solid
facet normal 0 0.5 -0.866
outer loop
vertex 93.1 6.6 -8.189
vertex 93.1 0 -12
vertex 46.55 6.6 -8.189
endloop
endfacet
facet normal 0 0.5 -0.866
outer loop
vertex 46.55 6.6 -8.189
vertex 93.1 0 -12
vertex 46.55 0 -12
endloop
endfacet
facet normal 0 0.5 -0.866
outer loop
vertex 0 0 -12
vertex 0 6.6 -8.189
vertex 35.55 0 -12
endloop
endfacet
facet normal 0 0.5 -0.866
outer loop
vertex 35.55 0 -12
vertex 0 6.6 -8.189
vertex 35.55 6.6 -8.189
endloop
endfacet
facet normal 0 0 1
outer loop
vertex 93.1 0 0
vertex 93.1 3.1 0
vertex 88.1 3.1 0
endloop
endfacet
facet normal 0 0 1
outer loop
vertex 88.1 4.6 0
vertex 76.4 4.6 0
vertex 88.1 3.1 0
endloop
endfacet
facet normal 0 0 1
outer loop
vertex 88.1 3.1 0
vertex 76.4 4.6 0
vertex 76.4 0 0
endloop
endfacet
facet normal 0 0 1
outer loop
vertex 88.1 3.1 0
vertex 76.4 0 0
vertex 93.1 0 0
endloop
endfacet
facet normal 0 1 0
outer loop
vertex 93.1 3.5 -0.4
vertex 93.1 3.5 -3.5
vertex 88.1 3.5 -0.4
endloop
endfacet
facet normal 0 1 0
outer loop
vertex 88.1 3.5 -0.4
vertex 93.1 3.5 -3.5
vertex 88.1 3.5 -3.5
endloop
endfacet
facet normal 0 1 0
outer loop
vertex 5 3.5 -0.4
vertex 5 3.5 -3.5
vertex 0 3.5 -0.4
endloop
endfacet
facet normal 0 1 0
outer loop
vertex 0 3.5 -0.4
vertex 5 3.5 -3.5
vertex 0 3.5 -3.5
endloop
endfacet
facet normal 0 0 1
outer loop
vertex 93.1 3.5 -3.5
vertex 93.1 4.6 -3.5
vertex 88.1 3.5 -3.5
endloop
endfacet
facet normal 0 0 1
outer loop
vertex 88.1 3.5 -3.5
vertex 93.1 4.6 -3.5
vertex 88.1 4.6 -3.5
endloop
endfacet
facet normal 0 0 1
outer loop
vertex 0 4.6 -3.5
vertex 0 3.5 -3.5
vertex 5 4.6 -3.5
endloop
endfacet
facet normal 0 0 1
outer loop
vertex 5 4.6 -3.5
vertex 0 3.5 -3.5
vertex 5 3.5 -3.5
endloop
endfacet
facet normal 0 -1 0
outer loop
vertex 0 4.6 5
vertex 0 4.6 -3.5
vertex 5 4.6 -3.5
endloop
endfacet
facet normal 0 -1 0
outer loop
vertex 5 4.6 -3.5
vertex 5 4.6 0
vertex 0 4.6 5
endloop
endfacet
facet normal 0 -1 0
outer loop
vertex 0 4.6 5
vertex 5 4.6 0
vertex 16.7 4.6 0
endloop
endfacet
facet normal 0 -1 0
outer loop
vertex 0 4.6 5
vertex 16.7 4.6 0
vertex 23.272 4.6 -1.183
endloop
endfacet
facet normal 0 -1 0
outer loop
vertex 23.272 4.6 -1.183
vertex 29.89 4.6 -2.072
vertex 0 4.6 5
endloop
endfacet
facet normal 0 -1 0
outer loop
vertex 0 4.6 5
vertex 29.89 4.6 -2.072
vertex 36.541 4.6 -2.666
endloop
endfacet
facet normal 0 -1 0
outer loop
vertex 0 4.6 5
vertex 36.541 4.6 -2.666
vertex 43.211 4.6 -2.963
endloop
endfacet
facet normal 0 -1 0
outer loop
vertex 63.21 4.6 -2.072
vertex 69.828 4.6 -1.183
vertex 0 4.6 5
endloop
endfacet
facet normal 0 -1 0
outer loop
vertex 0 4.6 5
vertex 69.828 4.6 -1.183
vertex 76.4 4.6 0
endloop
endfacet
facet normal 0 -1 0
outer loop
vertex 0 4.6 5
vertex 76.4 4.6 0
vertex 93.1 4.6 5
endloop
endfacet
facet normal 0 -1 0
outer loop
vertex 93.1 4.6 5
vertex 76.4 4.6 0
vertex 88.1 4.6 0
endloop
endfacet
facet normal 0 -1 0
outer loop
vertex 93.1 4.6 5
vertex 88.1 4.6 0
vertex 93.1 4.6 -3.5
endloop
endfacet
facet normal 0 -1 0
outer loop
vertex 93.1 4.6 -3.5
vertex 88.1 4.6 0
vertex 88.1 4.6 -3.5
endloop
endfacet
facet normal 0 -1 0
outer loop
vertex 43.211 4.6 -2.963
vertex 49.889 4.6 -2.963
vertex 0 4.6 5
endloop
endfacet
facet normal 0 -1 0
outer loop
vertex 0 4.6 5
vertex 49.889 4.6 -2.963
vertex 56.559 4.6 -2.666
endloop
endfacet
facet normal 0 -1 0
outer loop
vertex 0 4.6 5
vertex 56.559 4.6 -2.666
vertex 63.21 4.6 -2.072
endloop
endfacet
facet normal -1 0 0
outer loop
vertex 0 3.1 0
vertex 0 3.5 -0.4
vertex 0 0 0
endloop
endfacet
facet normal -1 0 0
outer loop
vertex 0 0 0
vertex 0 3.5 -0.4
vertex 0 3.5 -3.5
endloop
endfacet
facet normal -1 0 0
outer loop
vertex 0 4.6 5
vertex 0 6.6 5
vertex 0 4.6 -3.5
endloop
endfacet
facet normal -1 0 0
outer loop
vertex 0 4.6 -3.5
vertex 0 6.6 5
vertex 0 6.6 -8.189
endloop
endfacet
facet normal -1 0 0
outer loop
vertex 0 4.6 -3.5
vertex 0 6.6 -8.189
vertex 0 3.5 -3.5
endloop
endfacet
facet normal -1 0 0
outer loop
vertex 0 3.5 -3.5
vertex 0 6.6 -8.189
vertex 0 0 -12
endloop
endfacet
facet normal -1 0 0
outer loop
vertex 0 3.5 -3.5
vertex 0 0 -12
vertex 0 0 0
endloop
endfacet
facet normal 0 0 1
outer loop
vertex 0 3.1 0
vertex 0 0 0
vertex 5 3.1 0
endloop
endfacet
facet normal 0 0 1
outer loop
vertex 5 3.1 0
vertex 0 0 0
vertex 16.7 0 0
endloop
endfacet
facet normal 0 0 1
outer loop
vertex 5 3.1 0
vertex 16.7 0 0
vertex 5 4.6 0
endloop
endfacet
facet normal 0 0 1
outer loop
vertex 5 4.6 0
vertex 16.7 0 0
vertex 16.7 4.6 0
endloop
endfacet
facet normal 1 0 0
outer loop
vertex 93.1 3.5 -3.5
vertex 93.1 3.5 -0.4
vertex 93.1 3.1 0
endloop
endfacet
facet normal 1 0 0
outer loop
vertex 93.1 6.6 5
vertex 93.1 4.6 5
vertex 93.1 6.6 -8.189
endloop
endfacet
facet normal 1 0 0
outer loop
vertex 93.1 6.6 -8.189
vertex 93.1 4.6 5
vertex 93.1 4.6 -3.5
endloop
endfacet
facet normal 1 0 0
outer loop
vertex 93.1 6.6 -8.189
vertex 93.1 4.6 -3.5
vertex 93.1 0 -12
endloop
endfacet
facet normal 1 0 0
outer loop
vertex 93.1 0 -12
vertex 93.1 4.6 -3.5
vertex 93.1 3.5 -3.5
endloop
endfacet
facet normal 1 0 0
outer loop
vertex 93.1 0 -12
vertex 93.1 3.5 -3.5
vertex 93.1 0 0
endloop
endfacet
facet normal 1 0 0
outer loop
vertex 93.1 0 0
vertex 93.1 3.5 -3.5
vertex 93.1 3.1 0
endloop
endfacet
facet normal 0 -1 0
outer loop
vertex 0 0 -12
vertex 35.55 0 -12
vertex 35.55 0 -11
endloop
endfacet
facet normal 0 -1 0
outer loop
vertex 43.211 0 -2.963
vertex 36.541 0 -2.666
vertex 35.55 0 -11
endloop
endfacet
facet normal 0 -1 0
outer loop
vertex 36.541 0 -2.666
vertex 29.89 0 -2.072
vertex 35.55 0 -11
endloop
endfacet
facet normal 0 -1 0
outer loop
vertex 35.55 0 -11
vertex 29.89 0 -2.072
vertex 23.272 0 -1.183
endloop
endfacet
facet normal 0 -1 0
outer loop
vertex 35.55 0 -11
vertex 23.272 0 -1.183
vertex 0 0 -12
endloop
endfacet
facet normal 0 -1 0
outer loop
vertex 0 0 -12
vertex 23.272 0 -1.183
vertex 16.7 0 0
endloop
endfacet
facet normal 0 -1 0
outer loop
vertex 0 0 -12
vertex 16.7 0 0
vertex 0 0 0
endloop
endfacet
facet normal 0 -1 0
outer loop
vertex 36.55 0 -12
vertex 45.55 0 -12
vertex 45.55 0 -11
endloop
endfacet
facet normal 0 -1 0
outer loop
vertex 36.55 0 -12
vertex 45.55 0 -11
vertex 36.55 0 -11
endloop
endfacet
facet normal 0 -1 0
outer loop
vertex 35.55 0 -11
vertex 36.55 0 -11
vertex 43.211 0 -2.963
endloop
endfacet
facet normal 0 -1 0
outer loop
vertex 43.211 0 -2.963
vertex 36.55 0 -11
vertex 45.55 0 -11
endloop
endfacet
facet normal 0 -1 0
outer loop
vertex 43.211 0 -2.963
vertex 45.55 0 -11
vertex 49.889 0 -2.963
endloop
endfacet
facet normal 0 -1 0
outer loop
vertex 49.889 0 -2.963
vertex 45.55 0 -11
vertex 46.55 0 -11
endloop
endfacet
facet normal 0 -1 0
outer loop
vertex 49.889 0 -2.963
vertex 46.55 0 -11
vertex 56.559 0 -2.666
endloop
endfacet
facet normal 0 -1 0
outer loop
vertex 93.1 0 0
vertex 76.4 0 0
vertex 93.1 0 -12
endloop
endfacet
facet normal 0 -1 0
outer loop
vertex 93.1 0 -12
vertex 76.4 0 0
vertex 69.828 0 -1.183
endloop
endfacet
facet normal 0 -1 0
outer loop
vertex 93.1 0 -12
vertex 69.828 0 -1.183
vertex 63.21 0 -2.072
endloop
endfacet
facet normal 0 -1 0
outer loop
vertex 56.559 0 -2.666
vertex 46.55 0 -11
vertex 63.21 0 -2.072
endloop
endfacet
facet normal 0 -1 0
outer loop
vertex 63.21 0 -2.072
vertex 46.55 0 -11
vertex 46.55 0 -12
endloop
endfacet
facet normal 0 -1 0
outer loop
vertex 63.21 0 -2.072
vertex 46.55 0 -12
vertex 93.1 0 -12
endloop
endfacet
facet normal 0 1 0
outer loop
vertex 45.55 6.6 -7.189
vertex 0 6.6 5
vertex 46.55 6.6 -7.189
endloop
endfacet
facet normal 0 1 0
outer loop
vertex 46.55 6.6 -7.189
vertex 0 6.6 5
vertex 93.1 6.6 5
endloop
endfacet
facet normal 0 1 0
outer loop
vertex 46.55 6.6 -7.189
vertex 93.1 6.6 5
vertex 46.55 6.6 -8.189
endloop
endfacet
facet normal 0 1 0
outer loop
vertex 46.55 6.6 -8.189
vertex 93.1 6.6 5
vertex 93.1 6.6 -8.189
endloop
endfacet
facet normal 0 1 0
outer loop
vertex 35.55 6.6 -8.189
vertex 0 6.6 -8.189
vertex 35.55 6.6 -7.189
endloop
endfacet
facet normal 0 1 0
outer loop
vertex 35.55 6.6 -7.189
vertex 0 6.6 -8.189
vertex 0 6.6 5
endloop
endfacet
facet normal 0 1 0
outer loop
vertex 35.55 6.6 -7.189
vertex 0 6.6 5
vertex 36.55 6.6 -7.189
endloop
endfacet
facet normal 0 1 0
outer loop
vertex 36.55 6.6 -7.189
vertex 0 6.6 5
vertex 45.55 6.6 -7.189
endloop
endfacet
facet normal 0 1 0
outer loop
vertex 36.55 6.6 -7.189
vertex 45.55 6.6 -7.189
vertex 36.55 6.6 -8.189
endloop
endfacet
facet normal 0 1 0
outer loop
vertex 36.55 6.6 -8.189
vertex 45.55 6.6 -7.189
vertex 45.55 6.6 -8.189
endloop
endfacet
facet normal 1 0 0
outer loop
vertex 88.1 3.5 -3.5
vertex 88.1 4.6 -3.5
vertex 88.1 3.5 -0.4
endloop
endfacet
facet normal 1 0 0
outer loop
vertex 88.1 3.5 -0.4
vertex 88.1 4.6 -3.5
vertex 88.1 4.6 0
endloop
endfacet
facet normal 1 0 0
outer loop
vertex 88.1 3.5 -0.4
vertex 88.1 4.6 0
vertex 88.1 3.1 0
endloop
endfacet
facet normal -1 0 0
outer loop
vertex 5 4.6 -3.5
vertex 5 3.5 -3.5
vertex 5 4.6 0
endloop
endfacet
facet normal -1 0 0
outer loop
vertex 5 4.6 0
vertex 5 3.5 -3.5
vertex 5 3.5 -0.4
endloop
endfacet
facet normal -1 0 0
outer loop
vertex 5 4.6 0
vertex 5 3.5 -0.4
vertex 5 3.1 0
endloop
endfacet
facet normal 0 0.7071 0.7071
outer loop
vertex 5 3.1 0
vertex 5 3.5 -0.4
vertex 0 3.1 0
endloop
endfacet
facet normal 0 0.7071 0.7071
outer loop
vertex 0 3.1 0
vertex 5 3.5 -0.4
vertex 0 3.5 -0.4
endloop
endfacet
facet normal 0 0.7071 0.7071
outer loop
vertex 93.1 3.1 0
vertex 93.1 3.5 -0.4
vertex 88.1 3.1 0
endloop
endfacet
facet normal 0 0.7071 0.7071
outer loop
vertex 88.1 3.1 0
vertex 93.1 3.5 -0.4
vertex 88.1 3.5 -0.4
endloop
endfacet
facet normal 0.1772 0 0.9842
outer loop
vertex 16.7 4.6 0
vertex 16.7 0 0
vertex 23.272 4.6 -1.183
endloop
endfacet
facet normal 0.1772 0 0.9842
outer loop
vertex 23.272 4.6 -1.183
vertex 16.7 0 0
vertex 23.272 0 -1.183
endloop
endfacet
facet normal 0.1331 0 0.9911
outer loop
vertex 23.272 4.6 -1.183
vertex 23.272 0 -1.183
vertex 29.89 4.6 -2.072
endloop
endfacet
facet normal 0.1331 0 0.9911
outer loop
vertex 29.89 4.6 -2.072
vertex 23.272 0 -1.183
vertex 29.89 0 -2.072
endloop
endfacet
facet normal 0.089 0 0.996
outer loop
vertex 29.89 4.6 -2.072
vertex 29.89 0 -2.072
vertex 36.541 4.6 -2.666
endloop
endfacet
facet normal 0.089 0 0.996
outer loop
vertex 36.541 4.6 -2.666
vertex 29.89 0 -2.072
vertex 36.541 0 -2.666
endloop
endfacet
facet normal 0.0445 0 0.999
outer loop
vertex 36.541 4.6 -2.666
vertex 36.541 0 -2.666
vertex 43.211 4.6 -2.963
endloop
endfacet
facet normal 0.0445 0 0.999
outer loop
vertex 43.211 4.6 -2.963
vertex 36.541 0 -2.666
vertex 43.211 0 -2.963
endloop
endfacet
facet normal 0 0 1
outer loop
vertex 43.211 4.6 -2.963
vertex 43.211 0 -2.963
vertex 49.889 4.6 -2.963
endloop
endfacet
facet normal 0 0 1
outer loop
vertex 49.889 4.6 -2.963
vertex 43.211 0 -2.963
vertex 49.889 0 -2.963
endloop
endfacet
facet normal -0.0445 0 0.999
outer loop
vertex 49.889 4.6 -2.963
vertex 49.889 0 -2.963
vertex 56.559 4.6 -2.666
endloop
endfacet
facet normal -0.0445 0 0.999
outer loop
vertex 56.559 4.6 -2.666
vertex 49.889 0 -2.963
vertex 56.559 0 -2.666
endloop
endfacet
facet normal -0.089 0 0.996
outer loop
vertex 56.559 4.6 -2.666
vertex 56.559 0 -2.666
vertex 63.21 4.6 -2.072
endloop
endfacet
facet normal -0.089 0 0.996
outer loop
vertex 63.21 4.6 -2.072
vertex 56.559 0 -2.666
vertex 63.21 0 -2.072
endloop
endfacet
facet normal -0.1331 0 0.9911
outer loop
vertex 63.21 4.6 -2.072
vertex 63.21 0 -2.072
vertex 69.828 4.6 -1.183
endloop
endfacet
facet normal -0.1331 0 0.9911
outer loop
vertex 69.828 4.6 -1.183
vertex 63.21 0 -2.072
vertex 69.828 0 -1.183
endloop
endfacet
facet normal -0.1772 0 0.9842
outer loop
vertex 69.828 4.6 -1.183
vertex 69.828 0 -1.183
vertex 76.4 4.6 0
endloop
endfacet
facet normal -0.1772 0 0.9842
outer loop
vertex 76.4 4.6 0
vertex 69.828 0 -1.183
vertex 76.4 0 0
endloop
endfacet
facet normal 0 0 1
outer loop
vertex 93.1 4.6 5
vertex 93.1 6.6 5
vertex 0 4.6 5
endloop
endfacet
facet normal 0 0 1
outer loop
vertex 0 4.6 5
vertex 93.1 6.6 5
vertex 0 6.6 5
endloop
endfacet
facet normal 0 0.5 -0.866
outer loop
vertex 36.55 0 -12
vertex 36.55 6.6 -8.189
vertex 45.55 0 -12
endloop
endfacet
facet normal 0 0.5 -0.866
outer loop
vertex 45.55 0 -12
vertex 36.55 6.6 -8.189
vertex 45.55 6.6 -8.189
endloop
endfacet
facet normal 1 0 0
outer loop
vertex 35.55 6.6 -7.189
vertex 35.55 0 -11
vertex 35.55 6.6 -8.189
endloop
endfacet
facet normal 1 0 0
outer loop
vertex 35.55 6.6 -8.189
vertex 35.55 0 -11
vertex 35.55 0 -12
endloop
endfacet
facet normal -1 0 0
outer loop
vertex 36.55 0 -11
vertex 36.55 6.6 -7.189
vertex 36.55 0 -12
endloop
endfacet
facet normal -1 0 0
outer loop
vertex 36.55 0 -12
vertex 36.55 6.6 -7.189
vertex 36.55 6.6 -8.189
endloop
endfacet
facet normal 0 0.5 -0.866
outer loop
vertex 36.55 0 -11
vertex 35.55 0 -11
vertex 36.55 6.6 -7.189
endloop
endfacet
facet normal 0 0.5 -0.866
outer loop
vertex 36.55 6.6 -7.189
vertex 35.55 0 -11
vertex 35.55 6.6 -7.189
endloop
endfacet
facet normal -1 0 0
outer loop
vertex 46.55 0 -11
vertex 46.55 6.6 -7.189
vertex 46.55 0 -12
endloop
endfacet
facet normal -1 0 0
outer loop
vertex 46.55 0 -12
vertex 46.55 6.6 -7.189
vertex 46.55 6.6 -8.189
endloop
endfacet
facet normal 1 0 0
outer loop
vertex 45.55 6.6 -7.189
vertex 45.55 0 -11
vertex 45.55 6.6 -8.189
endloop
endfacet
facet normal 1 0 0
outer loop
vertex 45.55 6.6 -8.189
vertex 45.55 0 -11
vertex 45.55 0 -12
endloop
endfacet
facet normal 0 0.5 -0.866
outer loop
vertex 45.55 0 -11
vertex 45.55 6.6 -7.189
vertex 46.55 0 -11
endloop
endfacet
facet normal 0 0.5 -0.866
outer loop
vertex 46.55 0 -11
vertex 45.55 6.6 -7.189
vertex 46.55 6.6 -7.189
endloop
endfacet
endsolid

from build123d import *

# Parameters (mm, degrees)
SKETCH_2_W                  = 93.1
SKETCH_2_H                  = 10
EXTRUDE_1_DEPTH             = 3.5
SKETCH_4_W                  = 93.1
SKETCH_4_H                  = 6.5
EXTRUDE_2_DEPTH             = 1.1
SKETCH_5_W                  = 93.1
SKETCH_5_H                  = 10
EXTRUDE_3_DEPTH             = 2
CUT_EXTRUDE_1_DEPTH         = 94.867832616
SKETCH_7_W                  = 83.1
SKETCH_7_H                  = 1.1
EXTRUDE_4_DEPTH             = 3.5
CHAMFER_1_SIZE              = 0.4
CUT_EXTRUDE_2_REACH         = 95.868
SKETCH_8_R                  = 150
SKETCH_9_W                  = 93.1
SKETCH_9_H                  = 2
EXTRUDE_5_DEPTH             = 5
EXTRUDE_5_DIRECTION_2_REACH = 95.868
SKETCH_10_W                 = 93.1
SKETCH_10_H                 = 7.621023553
EXTRUDE_6_DEPTH             = 2
SKETCH_11_W                 = 1
SKETCH_11_H                 = 7.621023553
CUT_EXTRUDE_3_DEPTH         = 1


with BuildPart() as part:
    # 草图2 → 凸台-拉伸1 (new body)
    with BuildSketch(Plane(origin=(0, 0, 0), x_dir=(1, 0, 0), z_dir=(0, 1, 0))):
        with Locations((46.55, 5)):
            Rectangle(SKETCH_2_W, SKETCH_2_H)
    extrude(amount=EXTRUDE_1_DEPTH)

    # 草图4 → 凸台-拉伸2 (add)
    with BuildSketch(Plane(origin=(0, 3.5, 0), x_dir=(1, 0, 0), z_dir=(0, 1, 0))):
        with Locations((46.55, 6.75)):
            Rectangle(SKETCH_4_W, SKETCH_4_H)
    extrude(amount=EXTRUDE_2_DEPTH)

    # 草图5 → 凸台-拉伸3 (add)
    with BuildSketch(Plane(origin=(0, 4.6, 0), x_dir=(1, 0, 0), z_dir=(0, 1, 0))):
        with Locations((46.55, 5)):
            Rectangle(SKETCH_5_W, SKETCH_5_H)
    extrude(amount=EXTRUDE_3_DEPTH)

    # 草图6 → 切除-拉伸1 (cut, through all)
    with BuildSketch(Plane.ZY):
        Polygon((-10, 0), (-6.189488223, 6.6), (-10, 6.6), align=None)
    extrude(amount=-CUT_EXTRUDE_1_DEPTH, mode=Mode.SUBTRACT)

    # 草图7 → 凸台-拉伸4 (add)
    with BuildSketch(Plane.XY.offset(-3.5)):
        with Locations((46.55, 4.05)):
            Rectangle(SKETCH_7_W, SKETCH_7_H)
    extrude(amount=EXTRUDE_4_DEPTH)

    # 倒角1
    chamfer_1_edges = [part.edges().sort_by_distance(p)[0] for p in [
        (90.6, 3.5, 0),
        (2.5, 3.5, 0),
    ]]
    chamfer(chamfer_1_edges, length=CHAMFER_1_SIZE)

    # 草图8 → 切除-拉伸2 (cut, up to next)
    with BuildSketch(Plane.XZ, mode=Mode.PRIVATE) as cut_extrude_2_sk1:
        with Locations((46.55, 147)):
            Circle(SKETCH_8_R)
    cut_extrude_2_tool1 = extrude(cut_extrude_2_sk1.sketch, amount=-CUT_EXTRUDE_2_REACH, mode=Mode.PRIVATE) & part.part
    add(cut_extrude_2_tool1.solids().sort_by_distance((46.55, 0, 147))[0], mode=Mode.SUBTRACT)

    # 草图9 → 凸台-拉伸5 (add)
    with BuildSketch(Plane.XY):
        with Locations((46.55, 5.6)):
            Rectangle(SKETCH_9_W, SKETCH_9_H)
    extrude(amount=EXTRUDE_5_DEPTH)

    # 草图9 → 凸台-拉伸5 direction 2 (add, up to next)
    with BuildSketch(Plane.XY, mode=Mode.PRIVATE) as extrude_5_direction_2_sk1:
        with Locations((46.55, 5.6)):
            Rectangle(SKETCH_9_W, SKETCH_9_H)
    extrude_5_direction_2_tool1 = extrude(extrude_5_direction_2_sk1.sketch, amount=-EXTRUDE_5_DIRECTION_2_REACH, mode=Mode.PRIVATE) - part.part
    add(extrude_5_direction_2_tool1.solids().sort_by_distance((46.55, 5.6, 0))[0])

    # 草图10 → 凸台-拉伸6 (add, along a direction that is not the sketch's normal)
    with BuildSketch(Plane(origin=(0, 4.330127019, -7.5), x_dir=(-1, 0, 0), z_dir=(0, 0.4999999999999947, -0.8660254037844417))):
        with Locations((-46.55, -1.189488223)):
            Rectangle(SKETCH_10_W, SKETCH_10_H)
    extrude(amount=EXTRUDE_6_DEPTH, dir=(0, 0, -1))

    # 草图11 → 切除-拉伸3 (cut, along a direction that is not the sketch's normal)
    with BuildSketch(Plane(origin=(0, 5.196152423, -9), x_dir=(-1, 0, 0), z_dir=(0, 0.49999999999999484, -0.8660254037844418))):
        with Locations((-46.05, -2.189488223)):
            Rectangle(SKETCH_11_W, SKETCH_11_H)
        with Locations((-36.05, -2.189488223)):
            Rectangle(SKETCH_11_W, SKETCH_11_H)
    extrude(amount=-CUT_EXTRUDE_3_DEPTH, dir=(0, 0, -1), mode=Mode.SUBTRACT)


solid = part.part
